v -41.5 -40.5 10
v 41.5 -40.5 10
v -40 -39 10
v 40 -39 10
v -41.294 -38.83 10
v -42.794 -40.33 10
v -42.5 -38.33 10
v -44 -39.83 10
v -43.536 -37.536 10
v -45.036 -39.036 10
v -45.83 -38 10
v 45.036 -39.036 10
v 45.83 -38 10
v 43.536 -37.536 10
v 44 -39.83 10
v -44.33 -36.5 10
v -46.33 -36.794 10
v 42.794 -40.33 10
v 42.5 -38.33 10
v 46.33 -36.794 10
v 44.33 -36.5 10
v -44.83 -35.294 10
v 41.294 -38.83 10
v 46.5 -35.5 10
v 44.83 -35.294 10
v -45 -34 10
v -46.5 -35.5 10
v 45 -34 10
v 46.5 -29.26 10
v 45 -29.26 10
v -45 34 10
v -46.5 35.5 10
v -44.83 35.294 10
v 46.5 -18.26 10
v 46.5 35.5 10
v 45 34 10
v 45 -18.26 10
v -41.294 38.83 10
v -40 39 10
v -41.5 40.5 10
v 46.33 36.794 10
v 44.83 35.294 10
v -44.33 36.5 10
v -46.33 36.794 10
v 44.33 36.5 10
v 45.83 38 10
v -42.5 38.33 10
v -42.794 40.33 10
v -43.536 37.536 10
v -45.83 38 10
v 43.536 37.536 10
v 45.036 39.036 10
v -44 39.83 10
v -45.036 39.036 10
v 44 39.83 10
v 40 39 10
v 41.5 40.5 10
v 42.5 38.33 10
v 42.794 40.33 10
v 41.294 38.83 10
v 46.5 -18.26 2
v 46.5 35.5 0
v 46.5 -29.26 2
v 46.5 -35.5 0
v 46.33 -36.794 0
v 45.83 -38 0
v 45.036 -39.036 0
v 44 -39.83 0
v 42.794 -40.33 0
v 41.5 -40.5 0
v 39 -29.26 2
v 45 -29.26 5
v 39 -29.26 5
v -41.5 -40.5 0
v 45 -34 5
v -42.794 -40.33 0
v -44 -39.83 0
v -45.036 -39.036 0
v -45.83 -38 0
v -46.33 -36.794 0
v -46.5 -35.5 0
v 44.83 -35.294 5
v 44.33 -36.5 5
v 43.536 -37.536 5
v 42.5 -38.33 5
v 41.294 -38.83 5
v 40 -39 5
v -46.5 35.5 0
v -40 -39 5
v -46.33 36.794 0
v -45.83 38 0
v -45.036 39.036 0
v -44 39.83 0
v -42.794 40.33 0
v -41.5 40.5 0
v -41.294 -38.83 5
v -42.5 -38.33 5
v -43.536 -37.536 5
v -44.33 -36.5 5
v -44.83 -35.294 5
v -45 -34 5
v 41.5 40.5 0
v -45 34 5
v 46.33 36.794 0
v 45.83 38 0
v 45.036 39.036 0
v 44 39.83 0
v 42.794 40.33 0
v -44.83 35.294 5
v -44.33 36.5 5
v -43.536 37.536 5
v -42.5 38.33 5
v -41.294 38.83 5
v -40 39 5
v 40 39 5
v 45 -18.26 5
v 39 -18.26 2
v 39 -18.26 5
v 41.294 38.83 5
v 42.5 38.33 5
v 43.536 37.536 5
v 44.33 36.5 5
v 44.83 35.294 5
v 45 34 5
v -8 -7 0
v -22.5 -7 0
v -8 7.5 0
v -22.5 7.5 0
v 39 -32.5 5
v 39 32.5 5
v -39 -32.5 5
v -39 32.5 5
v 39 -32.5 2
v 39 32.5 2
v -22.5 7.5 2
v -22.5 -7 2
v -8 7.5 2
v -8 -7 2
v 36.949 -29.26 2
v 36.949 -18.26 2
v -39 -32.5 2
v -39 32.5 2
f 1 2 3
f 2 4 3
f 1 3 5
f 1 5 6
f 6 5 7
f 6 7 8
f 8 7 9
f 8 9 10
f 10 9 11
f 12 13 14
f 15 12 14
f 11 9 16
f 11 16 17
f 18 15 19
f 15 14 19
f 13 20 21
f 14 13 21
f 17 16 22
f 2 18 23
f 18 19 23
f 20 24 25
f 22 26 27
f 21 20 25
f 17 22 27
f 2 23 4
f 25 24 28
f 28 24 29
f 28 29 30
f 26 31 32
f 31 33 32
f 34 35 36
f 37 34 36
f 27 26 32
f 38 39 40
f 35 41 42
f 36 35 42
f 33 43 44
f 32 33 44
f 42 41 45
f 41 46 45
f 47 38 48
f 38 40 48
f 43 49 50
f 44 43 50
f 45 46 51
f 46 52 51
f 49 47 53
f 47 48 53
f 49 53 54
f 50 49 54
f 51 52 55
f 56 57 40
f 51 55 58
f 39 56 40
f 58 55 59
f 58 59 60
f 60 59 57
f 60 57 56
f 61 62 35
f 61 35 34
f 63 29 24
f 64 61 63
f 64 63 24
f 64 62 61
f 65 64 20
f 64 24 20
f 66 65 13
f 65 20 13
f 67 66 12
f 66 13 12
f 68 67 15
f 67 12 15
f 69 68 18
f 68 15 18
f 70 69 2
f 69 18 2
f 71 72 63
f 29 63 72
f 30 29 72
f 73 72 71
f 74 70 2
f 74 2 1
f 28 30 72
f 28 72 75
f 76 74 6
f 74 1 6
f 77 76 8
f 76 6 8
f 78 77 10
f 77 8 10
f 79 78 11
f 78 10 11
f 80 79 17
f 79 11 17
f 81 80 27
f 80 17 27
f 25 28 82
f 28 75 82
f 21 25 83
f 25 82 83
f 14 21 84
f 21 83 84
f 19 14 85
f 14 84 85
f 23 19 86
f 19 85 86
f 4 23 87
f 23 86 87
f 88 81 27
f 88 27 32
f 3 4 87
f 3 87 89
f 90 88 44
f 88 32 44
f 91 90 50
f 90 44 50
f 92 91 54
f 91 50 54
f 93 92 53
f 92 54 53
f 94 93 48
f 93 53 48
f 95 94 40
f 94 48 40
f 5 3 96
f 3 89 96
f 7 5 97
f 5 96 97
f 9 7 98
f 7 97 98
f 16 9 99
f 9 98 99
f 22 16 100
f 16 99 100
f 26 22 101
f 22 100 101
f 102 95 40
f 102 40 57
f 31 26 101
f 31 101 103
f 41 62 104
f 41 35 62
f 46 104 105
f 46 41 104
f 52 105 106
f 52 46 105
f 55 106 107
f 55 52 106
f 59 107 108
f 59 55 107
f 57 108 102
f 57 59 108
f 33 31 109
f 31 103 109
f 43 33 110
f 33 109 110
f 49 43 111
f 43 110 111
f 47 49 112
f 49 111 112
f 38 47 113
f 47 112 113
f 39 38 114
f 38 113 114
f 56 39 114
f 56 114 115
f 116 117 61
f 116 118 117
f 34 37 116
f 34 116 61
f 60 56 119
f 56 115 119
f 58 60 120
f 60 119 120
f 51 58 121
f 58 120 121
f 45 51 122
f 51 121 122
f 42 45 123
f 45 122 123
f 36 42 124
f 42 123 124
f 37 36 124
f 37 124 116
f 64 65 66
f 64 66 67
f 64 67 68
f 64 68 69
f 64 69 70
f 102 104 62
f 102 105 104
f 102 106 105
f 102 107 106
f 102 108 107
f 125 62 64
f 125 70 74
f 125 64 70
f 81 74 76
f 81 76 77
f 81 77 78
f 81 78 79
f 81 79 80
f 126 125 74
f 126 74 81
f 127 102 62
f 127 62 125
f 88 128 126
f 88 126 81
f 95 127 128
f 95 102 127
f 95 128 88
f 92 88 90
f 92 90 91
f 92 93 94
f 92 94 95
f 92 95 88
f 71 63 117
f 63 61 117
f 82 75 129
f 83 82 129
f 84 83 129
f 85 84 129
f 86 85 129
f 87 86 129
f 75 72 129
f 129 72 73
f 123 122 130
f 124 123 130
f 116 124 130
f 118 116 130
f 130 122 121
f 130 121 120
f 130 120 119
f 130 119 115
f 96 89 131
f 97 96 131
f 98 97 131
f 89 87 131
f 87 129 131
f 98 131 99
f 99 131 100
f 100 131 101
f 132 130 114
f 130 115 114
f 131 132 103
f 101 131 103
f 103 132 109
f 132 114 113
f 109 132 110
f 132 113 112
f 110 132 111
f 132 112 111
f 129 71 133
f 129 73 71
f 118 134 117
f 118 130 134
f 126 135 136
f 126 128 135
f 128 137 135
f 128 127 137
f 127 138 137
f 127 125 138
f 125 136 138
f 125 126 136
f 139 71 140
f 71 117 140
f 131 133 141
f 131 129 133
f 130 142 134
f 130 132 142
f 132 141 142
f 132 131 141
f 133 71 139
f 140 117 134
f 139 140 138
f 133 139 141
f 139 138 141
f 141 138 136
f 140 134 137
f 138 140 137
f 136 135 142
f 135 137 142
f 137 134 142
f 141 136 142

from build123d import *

# Parameters (mm, degrees)
SKETCH_W        = 93
SKETCH_H        = 81
PAD_DEPTH       = 10
SKETCH001_W     = 78
SKETCH001_H     = 65
POCKET_DEPTH    = 8
SKETCH002_W     = 90
SKETCH002_H     = 78
POCKET001_DEPTH = 5
SKETCH003_W     = 11.5902
SKETCH003_H     = 11
POCKET002_DEPTH = 8
FILLET_R        = 5
FILLET001_R     = 5
SKETCH004_W     = 14.5
SKETCH004_H     = 14.5
POCKET003_DEPTH = 10.001


with BuildPart() as part:
    # Sketch → Pad (new body)
    with BuildSketch(Plane.XY):
        Rectangle(SKETCH_W, SKETCH_H)
    extrude(amount=PAD_DEPTH)

    # Sketch001 → Pocket (cut)
    with BuildSketch(Plane.XY.offset(10)):
        Rectangle(SKETCH001_W, SKETCH001_H)
    extrude(amount=-POCKET_DEPTH, mode=Mode.SUBTRACT)

    # Sketch002 → Pocket001 (cut)
    with BuildSketch(Plane.XY.offset(10)):
        Rectangle(SKETCH002_W, SKETCH002_H)
    extrude(amount=-POCKET001_DEPTH, mode=Mode.SUBTRACT)

    # Sketch003 → Pocket002 (cut)
    with BuildSketch(Plane.XY.offset(10)):
        with Locations((42.744, -23.7601)):
            Rectangle(SKETCH003_W, SKETCH003_H)
    extrude(amount=-POCKET002_DEPTH, mode=Mode.SUBTRACT)

    # Fillet
    fillet_edges = [part.edges().sort_by_distance(p)[0] for p in [
        (45, 39, 7.5),
        (-45, 39, 7.5),
        (45, -39, 7.5),
        (-45, -39, 7.5),
    ]]
    fillet(fillet_edges, radius=FILLET_R)

    # Fillet001
    fillet001_edges = [part.edges().sort_by_distance(p)[0] for p in [
        (46.5, -40.5, 5),
        (-46.5, -40.5, 5),
        (-46.5, 40.5, 5),
        (46.5, 40.5, 5),
    ]]
    fillet(fillet001_edges, radius=FILLET001_R)

    # Sketch004 → Pocket003 (cut, through all)
    with BuildSketch(Plane(origin=(0, 0, 0), x_dir=(1, 0, 0), z_dir=(0, 0, -1))):
        with Locations((-15.25, -0.25)):
            Rectangle(SKETCH004_W, SKETCH004_H)
    extrude(amount=-POCKET003_DEPTH, mode=Mode.SUBTRACT)


solid = part.part
